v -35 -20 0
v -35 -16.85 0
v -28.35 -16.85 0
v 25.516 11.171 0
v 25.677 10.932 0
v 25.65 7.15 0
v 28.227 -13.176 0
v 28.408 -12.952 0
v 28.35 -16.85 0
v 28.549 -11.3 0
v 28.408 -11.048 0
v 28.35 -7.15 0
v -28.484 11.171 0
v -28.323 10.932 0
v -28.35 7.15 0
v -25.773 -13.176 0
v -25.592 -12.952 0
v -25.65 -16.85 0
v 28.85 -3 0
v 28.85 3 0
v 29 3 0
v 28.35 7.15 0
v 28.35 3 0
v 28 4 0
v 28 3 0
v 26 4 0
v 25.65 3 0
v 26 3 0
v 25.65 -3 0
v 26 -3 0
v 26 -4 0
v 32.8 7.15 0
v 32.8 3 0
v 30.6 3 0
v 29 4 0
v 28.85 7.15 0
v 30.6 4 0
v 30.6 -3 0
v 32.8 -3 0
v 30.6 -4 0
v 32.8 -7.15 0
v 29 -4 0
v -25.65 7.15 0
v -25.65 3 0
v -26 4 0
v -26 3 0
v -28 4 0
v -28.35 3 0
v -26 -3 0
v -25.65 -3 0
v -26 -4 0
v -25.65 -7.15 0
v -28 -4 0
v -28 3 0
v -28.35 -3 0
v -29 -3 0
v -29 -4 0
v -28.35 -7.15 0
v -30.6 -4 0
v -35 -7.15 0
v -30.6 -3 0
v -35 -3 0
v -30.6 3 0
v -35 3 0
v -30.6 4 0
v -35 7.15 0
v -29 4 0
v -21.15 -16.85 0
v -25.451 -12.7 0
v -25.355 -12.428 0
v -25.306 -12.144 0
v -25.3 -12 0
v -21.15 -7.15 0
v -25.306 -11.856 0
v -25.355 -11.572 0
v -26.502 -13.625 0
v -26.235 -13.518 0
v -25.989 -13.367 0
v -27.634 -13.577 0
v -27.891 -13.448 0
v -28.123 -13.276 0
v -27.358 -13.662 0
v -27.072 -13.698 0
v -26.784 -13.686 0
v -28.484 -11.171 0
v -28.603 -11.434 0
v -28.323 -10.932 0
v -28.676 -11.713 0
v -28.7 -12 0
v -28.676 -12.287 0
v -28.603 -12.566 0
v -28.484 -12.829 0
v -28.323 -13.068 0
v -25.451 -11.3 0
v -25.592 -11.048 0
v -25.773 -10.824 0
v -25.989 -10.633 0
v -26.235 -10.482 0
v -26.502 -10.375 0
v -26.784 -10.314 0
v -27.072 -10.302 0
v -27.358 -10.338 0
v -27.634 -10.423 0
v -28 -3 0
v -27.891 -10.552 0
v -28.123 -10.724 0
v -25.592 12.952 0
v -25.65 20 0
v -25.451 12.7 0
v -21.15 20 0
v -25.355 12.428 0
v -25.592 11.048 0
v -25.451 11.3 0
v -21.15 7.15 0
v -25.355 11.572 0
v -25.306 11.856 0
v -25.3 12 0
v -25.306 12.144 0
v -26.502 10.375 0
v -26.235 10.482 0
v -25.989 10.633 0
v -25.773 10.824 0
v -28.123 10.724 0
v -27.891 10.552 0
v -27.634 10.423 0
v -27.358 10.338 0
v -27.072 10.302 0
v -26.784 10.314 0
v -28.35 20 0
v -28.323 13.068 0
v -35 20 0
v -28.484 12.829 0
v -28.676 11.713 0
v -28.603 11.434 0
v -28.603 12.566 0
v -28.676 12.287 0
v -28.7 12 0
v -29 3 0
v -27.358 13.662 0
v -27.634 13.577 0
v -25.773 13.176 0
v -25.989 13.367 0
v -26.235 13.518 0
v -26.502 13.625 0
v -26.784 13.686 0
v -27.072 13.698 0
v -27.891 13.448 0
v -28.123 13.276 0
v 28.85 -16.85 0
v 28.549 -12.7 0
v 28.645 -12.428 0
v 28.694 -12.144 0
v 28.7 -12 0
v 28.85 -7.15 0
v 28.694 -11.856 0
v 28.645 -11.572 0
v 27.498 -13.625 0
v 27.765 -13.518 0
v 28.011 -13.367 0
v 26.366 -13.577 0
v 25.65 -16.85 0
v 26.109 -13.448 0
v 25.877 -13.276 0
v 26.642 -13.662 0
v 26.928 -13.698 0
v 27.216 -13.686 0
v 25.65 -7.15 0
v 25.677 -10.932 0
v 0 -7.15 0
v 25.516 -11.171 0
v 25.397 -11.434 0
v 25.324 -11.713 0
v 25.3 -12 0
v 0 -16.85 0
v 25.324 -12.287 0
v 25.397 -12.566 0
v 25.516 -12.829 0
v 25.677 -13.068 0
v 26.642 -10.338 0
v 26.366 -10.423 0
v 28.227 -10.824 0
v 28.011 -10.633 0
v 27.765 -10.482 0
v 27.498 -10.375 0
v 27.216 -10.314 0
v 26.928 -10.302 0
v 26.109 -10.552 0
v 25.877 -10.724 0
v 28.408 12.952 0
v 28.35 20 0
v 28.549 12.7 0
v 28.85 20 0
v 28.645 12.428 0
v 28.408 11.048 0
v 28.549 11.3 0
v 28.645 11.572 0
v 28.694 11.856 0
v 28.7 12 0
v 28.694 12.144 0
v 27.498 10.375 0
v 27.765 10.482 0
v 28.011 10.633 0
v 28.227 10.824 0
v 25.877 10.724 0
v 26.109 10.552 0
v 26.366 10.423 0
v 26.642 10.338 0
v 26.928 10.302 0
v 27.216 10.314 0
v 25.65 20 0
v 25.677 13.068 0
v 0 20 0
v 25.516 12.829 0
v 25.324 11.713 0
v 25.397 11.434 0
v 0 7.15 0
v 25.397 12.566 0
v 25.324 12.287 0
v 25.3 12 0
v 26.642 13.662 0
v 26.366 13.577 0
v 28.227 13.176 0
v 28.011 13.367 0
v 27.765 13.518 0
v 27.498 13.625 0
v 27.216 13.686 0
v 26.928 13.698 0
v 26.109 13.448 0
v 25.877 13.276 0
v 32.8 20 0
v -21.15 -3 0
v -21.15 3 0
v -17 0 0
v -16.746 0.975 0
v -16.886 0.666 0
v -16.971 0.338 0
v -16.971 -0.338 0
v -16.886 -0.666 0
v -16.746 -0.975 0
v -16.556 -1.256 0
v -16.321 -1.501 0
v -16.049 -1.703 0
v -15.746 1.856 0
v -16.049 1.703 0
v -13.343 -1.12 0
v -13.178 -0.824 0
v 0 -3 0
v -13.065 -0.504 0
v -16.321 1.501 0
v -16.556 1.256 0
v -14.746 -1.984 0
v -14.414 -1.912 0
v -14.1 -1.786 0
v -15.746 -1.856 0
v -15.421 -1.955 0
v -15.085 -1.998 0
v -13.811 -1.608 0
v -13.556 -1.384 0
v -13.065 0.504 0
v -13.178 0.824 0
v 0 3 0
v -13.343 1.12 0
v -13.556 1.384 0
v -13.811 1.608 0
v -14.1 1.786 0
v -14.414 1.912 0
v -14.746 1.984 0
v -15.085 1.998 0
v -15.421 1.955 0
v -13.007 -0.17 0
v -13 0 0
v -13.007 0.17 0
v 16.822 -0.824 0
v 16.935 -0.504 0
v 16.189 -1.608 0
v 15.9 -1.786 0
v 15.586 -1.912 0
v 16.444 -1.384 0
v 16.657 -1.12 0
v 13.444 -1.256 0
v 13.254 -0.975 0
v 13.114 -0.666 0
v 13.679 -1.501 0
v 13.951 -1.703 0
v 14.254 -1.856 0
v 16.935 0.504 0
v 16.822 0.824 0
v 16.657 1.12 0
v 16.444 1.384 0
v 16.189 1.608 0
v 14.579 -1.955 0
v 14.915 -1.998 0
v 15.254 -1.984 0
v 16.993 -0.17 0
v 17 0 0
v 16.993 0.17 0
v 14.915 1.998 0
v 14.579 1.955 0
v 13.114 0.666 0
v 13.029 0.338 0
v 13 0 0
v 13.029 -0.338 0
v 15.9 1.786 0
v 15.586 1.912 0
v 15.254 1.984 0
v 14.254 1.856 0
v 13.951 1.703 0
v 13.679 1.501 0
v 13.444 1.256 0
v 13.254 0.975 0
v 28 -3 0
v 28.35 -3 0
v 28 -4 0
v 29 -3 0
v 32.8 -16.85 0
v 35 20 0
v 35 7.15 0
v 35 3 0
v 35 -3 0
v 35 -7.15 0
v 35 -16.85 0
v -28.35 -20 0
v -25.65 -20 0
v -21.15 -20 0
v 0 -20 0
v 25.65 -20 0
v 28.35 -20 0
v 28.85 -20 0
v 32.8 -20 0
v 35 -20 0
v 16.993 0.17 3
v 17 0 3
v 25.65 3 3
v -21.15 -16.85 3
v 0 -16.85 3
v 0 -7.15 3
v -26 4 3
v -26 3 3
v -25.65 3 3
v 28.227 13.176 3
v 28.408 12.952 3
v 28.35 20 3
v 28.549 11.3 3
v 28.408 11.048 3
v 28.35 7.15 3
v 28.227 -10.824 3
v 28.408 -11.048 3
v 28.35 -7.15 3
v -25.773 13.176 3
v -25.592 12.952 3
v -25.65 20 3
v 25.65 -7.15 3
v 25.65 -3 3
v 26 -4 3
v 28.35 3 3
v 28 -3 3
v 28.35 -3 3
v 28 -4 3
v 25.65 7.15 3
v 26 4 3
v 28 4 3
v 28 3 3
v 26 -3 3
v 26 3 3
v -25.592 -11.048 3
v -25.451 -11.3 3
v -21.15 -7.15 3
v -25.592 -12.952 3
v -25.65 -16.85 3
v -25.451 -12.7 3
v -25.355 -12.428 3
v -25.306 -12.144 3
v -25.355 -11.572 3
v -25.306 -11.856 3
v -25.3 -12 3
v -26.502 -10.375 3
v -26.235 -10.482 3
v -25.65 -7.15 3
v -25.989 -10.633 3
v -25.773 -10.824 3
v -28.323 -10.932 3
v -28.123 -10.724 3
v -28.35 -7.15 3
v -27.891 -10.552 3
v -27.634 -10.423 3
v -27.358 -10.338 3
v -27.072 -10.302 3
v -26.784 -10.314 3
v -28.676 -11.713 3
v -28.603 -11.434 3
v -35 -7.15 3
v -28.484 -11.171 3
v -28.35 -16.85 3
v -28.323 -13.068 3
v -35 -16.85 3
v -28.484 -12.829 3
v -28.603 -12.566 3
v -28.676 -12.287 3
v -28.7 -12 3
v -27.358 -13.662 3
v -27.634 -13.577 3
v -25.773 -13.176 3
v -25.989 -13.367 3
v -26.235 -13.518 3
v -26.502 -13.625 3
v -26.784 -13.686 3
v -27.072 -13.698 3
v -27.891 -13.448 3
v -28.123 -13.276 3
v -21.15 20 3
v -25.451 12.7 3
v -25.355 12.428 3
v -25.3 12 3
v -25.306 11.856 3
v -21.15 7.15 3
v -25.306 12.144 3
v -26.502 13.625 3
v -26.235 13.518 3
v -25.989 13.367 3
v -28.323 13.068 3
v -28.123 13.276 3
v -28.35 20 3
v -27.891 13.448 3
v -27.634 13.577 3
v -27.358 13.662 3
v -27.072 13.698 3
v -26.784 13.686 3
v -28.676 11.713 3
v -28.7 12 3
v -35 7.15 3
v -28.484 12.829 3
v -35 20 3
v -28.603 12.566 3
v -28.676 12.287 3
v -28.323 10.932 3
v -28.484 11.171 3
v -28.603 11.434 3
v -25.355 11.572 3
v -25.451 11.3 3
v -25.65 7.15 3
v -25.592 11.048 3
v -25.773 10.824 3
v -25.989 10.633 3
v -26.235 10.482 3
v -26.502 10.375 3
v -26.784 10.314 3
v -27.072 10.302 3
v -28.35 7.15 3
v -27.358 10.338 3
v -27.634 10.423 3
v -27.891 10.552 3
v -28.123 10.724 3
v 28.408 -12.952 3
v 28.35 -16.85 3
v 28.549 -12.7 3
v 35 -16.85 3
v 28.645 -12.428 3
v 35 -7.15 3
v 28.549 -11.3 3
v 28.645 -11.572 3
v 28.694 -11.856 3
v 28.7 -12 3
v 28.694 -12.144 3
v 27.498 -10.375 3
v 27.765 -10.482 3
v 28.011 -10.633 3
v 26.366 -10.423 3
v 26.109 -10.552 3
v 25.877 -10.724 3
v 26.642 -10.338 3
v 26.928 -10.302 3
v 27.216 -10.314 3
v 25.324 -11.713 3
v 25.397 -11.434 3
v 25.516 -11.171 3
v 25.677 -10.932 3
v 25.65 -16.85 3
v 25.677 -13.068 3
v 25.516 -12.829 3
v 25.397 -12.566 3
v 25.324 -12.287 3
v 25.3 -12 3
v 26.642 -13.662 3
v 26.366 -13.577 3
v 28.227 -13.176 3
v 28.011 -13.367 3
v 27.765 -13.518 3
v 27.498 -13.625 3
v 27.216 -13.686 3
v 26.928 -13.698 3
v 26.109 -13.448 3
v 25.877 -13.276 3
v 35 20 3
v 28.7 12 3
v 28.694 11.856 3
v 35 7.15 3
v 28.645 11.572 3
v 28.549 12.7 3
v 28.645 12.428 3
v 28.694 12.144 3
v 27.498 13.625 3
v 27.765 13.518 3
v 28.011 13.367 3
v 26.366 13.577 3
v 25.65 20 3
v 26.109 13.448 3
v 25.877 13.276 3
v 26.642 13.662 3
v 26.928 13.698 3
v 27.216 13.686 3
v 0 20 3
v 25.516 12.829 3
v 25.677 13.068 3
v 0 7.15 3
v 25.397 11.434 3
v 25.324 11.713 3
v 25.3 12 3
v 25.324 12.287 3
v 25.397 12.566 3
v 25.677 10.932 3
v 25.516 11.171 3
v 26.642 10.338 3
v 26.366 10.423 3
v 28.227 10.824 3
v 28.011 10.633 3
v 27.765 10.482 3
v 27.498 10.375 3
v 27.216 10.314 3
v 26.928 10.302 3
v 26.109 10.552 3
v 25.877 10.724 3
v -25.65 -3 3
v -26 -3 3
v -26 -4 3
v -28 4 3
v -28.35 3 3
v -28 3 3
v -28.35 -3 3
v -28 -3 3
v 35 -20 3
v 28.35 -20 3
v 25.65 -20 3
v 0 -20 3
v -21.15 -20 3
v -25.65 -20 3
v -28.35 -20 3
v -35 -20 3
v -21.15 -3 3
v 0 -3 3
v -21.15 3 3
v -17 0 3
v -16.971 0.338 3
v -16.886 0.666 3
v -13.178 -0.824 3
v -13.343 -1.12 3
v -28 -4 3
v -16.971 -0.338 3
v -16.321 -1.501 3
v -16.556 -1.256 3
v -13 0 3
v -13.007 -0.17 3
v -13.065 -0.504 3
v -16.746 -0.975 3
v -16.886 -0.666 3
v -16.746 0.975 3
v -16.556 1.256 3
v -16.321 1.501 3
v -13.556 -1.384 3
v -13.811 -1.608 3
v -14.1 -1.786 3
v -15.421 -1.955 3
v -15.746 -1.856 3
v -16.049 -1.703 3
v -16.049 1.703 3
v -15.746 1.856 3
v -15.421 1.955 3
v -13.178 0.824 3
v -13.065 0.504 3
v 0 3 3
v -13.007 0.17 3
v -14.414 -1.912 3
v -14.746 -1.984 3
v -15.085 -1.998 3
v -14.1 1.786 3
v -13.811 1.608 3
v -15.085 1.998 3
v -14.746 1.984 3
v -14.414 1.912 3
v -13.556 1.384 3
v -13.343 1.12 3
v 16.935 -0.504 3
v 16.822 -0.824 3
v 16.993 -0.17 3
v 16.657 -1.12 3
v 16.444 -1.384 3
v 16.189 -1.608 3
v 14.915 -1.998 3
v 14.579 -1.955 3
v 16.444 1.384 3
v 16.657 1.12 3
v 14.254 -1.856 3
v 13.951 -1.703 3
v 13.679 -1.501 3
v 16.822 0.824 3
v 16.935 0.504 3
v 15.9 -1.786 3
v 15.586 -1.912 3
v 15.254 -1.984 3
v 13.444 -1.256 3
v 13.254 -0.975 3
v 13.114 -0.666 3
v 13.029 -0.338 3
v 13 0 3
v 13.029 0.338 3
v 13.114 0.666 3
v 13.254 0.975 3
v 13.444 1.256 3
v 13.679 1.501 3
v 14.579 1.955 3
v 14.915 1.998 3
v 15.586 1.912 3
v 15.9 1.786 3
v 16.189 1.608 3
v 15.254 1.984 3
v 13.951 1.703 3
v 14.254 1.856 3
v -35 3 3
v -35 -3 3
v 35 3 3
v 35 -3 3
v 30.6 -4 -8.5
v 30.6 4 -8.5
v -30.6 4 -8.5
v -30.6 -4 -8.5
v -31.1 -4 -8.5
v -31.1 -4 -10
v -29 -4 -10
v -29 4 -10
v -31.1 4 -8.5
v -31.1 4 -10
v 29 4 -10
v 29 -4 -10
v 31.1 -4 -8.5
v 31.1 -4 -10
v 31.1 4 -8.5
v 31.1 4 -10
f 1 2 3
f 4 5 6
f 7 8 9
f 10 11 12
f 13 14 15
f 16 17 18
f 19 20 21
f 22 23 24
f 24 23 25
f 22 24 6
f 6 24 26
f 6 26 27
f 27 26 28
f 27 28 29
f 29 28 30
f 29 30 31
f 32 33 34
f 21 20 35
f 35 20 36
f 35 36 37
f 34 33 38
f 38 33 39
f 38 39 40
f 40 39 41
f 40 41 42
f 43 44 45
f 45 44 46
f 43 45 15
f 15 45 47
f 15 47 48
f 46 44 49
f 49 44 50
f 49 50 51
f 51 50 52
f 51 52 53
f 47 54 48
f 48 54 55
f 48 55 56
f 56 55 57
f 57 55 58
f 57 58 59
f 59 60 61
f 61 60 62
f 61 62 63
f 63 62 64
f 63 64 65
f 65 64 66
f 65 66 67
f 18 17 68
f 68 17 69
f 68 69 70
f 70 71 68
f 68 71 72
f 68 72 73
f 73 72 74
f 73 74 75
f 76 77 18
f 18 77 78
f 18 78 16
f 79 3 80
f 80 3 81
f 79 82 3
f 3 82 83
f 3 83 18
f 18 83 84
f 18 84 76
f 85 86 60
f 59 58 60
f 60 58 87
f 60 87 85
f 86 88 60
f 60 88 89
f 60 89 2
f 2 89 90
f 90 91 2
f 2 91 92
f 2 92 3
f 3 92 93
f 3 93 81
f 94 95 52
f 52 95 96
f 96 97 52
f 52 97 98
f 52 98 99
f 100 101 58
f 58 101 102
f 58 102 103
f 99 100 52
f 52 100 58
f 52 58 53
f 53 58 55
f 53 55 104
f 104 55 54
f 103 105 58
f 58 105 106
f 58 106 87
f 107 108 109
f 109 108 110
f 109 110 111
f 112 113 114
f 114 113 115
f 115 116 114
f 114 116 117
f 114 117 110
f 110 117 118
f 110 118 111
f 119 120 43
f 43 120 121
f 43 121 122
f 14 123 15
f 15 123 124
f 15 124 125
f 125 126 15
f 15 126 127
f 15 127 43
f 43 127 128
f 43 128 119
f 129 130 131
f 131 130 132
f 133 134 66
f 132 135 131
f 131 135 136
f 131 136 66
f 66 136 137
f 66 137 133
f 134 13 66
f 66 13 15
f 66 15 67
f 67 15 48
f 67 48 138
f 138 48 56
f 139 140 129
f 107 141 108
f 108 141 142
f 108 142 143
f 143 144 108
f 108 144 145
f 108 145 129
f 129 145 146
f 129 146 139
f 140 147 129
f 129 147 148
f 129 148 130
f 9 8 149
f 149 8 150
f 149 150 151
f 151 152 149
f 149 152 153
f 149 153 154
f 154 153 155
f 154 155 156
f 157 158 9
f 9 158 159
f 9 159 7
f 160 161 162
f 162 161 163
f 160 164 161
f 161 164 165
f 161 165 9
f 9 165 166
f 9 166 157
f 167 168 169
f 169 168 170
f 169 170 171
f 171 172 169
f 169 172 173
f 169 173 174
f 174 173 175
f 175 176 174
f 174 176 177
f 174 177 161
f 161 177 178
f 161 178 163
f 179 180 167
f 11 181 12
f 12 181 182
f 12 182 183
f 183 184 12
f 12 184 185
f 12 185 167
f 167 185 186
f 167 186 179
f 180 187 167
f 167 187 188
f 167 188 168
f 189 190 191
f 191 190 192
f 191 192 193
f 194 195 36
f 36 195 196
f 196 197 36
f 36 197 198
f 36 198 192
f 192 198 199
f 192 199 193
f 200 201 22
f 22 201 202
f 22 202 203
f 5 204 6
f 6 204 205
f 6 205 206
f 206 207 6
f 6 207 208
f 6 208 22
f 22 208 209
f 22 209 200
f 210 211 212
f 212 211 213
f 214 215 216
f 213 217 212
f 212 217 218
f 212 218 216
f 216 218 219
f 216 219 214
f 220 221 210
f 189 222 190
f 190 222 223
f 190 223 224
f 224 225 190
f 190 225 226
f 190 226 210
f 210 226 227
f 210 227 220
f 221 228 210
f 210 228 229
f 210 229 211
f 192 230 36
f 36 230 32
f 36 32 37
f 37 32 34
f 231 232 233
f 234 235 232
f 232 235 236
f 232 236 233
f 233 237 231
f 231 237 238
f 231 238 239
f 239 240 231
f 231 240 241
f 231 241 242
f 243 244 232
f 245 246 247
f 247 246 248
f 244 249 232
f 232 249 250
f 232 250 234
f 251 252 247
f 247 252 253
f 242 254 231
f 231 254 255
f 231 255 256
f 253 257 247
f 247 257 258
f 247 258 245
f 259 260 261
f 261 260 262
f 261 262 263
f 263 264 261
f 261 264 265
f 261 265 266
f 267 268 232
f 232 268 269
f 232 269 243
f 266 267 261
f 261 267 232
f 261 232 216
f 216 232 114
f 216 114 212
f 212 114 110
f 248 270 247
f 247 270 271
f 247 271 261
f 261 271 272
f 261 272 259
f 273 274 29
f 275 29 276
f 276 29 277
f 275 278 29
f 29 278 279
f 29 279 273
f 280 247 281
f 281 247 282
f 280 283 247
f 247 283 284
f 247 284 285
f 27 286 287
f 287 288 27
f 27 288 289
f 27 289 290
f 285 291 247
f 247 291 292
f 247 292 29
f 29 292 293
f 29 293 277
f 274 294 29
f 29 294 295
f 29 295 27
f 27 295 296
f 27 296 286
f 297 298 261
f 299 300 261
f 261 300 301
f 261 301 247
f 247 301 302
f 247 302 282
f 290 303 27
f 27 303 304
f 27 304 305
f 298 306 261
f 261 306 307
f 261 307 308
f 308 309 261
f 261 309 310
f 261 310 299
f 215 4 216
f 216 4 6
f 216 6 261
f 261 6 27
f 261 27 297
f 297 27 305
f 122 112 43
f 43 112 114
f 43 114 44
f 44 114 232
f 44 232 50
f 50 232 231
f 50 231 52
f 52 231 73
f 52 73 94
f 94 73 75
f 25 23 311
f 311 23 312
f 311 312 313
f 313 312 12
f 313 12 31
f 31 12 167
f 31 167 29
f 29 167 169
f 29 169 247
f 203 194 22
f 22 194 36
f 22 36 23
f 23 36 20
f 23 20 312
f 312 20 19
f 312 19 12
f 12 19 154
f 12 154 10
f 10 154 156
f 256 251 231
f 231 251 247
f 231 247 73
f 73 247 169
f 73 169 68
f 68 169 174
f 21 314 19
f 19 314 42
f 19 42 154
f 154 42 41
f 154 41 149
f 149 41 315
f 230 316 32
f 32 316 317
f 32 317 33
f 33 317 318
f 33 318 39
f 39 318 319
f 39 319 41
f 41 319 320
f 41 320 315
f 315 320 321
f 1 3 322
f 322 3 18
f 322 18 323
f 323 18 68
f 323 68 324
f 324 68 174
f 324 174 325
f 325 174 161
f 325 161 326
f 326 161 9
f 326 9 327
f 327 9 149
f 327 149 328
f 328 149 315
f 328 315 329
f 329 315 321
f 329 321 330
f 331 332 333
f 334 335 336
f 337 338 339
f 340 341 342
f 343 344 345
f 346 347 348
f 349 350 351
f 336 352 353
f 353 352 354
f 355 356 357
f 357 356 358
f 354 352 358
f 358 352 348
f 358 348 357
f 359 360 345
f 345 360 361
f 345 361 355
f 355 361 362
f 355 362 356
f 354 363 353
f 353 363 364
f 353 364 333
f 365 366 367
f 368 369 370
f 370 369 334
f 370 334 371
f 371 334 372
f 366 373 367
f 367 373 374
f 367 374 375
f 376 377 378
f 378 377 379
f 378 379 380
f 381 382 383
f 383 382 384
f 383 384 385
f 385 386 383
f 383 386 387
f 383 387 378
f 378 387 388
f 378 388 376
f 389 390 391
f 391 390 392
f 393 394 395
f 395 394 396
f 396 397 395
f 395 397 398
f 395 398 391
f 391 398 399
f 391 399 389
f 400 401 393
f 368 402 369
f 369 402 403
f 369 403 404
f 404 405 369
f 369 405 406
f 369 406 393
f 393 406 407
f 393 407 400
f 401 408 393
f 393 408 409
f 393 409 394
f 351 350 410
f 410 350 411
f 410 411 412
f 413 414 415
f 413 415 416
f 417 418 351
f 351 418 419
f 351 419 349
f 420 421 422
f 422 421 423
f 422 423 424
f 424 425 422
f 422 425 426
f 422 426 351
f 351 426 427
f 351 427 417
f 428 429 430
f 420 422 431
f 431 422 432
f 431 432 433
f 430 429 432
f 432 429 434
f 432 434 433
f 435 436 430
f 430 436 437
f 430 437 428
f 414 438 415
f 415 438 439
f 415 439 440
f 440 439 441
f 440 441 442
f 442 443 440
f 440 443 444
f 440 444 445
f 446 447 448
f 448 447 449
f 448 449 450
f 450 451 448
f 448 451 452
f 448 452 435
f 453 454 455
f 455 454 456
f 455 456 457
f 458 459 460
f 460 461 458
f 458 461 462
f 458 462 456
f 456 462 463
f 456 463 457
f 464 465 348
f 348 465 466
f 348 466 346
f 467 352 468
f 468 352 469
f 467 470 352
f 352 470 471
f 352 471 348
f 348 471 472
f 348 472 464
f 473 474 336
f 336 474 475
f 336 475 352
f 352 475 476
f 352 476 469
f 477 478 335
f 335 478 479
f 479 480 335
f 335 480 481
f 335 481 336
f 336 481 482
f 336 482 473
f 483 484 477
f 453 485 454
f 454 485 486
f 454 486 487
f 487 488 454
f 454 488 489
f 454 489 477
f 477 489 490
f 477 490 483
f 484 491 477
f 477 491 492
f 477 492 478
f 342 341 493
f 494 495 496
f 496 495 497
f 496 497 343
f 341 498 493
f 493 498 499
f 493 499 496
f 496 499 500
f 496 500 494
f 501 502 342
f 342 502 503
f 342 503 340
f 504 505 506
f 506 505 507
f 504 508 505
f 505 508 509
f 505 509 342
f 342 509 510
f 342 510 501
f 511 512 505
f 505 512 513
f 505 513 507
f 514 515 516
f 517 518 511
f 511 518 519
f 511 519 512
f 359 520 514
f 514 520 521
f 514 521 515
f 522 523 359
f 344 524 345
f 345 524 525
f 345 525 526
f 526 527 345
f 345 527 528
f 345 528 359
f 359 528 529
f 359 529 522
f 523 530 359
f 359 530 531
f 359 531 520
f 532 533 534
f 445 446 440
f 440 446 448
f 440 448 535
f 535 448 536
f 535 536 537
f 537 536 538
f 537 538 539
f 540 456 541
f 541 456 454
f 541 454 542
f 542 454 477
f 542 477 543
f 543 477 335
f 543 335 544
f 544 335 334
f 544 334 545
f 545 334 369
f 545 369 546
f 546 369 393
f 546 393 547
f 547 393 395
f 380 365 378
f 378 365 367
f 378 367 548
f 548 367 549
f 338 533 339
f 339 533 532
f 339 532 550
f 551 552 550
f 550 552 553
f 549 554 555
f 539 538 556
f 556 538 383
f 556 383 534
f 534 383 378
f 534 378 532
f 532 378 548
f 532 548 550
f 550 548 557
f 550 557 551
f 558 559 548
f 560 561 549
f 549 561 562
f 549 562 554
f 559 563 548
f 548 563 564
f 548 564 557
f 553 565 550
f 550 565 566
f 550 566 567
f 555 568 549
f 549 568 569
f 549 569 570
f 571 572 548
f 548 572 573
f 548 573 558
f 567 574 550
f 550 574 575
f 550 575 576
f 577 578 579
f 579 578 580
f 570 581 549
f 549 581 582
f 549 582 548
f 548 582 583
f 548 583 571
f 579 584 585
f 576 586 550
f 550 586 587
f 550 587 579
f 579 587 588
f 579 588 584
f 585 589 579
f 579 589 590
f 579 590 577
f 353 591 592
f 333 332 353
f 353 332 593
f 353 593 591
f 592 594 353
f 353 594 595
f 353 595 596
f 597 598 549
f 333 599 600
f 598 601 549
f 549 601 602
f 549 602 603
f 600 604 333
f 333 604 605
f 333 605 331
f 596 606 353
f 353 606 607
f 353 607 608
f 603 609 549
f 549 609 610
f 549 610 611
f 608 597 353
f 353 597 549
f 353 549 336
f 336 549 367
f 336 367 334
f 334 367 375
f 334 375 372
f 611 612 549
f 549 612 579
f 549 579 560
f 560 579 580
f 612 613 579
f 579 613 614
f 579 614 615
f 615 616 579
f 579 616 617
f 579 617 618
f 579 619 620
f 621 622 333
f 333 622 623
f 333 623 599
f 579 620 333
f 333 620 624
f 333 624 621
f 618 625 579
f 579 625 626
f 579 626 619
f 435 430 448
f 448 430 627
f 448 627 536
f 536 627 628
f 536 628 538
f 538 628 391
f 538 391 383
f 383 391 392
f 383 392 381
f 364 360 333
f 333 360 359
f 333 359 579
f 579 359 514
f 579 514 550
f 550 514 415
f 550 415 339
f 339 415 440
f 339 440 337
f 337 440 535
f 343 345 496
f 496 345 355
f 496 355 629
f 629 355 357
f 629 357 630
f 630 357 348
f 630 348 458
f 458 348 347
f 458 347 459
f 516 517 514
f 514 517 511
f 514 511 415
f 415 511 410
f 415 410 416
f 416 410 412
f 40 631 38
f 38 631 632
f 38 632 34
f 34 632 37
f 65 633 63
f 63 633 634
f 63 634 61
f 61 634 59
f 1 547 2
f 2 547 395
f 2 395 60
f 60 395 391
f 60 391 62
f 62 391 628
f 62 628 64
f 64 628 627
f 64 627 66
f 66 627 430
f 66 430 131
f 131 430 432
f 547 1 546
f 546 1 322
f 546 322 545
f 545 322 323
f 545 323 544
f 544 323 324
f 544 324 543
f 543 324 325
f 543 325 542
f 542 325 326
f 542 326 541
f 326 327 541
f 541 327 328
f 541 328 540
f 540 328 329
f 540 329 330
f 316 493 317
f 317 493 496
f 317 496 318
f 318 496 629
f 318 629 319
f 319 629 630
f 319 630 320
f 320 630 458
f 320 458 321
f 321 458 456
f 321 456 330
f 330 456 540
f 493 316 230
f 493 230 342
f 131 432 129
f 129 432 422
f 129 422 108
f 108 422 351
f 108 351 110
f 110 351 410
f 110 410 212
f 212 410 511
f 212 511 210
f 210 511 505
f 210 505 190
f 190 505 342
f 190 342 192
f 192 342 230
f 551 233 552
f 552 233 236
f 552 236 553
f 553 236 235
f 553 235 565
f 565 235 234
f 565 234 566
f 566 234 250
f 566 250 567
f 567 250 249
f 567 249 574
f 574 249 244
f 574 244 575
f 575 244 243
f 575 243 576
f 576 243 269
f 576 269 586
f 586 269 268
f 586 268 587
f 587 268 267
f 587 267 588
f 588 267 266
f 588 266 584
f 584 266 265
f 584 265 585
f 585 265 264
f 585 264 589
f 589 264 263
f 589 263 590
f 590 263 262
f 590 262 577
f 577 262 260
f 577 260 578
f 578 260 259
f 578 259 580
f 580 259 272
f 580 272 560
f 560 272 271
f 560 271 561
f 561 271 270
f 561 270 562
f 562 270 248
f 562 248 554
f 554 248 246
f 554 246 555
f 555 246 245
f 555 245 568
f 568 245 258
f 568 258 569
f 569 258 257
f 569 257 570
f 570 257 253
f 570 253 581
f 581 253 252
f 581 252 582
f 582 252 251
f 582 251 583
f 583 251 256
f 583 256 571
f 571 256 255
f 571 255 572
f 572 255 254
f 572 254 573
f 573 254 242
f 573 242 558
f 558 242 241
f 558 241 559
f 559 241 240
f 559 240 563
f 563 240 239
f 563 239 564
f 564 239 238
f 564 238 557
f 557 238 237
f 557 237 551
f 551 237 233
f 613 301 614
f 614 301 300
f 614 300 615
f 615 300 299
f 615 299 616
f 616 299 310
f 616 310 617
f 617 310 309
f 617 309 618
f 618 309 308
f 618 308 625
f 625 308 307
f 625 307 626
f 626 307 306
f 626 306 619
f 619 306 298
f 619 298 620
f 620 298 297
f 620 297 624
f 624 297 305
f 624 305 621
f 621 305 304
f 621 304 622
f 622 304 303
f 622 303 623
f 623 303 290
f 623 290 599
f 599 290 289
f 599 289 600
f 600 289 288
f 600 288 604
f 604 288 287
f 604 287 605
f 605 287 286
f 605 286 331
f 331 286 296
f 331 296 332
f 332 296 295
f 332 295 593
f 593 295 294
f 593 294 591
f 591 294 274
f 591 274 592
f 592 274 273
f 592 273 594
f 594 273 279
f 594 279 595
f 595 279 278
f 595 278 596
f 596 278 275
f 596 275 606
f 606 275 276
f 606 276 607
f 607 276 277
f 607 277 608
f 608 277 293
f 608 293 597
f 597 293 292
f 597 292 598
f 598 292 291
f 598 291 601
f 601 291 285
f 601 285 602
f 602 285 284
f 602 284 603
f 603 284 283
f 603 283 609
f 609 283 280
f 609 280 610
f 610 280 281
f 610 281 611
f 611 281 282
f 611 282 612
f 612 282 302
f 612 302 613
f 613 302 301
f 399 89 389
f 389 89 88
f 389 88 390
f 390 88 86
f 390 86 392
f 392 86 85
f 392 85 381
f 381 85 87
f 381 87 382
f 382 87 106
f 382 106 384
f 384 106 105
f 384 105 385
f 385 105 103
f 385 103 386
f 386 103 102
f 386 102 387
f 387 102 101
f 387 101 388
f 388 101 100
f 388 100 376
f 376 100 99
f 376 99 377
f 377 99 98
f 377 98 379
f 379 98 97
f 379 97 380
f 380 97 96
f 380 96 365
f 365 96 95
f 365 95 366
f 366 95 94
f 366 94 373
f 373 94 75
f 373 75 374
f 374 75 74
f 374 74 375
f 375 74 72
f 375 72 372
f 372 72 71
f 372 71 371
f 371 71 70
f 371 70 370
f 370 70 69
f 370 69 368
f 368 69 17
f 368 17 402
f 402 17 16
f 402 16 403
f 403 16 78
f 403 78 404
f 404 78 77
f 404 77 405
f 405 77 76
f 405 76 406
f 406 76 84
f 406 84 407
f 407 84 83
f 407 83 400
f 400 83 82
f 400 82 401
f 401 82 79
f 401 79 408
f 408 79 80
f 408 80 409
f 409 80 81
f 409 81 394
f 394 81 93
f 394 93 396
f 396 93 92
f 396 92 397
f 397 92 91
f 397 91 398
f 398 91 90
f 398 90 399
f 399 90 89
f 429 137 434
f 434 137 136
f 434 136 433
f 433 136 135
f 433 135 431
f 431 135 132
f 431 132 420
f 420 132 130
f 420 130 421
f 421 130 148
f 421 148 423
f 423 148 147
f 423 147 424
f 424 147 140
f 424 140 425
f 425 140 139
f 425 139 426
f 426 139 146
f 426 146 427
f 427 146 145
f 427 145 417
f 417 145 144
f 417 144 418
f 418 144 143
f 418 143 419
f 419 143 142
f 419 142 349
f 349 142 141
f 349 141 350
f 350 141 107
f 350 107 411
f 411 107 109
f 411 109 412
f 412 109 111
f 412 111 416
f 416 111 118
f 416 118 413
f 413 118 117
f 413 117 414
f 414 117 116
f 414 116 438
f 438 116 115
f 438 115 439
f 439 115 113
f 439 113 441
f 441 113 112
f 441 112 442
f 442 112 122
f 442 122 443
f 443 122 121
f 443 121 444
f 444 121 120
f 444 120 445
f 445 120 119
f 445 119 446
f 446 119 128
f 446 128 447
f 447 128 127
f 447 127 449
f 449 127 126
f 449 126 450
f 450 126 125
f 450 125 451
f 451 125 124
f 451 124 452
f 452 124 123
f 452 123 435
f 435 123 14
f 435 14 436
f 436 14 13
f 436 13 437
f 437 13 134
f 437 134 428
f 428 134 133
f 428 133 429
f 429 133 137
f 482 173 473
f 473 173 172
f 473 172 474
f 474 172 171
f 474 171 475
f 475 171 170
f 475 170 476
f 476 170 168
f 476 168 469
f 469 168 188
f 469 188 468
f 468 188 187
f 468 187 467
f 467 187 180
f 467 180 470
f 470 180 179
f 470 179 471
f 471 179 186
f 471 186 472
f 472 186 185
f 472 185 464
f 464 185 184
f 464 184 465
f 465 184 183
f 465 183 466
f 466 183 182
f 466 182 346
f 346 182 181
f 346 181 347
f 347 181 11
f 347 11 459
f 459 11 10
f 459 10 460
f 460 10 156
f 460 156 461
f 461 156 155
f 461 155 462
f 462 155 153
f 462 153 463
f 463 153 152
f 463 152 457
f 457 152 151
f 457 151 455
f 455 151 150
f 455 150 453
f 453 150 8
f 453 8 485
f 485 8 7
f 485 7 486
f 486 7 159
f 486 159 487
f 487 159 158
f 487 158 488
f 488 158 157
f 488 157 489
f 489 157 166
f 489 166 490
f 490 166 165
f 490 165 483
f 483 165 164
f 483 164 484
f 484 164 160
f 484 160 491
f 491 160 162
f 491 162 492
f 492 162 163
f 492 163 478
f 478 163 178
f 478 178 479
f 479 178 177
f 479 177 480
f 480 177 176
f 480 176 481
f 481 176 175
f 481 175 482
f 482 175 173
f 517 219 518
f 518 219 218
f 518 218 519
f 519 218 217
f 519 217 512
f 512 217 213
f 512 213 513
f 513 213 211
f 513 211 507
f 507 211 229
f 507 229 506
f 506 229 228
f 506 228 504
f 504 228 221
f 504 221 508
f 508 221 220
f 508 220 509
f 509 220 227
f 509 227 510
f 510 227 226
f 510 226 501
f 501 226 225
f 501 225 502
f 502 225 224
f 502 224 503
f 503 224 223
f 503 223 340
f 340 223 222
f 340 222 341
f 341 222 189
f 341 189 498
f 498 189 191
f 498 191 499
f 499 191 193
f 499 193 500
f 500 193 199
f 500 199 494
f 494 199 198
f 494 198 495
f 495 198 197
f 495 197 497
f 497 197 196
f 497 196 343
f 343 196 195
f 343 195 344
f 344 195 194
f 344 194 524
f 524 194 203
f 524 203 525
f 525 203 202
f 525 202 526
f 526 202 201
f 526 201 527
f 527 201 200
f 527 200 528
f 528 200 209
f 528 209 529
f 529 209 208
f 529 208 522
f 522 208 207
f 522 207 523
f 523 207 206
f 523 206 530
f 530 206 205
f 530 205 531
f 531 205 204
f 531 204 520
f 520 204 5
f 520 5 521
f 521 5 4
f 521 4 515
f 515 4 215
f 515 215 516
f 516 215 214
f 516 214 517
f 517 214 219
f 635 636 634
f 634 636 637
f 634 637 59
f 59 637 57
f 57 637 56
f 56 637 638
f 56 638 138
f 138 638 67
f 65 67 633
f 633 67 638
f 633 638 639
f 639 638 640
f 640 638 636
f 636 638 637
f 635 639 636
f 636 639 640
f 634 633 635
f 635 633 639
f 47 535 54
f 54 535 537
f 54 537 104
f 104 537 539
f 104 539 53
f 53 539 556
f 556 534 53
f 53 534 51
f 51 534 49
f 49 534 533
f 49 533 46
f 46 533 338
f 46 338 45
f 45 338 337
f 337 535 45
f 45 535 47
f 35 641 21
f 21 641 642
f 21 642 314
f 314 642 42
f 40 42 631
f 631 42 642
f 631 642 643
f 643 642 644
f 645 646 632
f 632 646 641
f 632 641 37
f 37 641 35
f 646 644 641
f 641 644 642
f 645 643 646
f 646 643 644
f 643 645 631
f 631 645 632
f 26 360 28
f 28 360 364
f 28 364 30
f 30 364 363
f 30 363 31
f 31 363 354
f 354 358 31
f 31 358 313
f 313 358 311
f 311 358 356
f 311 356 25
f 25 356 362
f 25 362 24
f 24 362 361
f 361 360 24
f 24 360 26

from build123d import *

# Parameters (mm, degrees)
SKETCH2_W                 = 70
SKETCH2_H                 = 40
LID_PLATE_DEPTH           = 3
SKETCH3_R                 = 2
PORT_BORE_DEPTH           = 3
SKETCH4_R                 = 2
CUT_EXTRUDE2_DEPTH        = 3
SKETCH5_R                 = 1.7
SCREW_CLEARANCE_DEPTH     = 3
SKETCH6_R                 = 1.7
CUT_EXTRUDE4_DEPTH        = 3
SKETCH7_R                 = 1.7
CUT_EXTRUDE5_DEPTH        = 3
SKETCH8_R                 = 1.7
CUT_EXTRUDE6_DEPTH        = 3
SNAP_BEAM_START           = -10
SKETCH9_W                 = 1.6
SKETCH9_H                 = 8
SNAP_BEAM_DEPTH           = 10
SNAP_HOOK_START           = -10
SKETCH10_W                = 0.5
SKETCH10_H                = 8
SNAP_HOOK_DEPTH           = 1.5
SKETCH11_W                = 2
SKETCH11_H                = 8
SNAP_RELEASE_ACCESS_DEPTH = 3
BOSS_EXTRUDE4_START       = -10
SKETCH12_W                = 1.6
SKETCH12_H                = 8
BOSS_EXTRUDE4_DEPTH       = 10
BOSS_EXTRUDE5_START       = -10
SKETCH13_W                = 0.5
SKETCH13_H                = 8
BOSS_EXTRUDE5_DEPTH       = 1.5
SKETCH14_W                = 2
SKETCH14_H                = 8
CUT_EXTRUDE8_DEPTH        = 3


with BuildPart() as part:
    # Sketch2 → Lid_plate (new body)
    with BuildSketch(Plane.XY):
        Rectangle(SKETCH2_W, SKETCH2_H)
    extrude(amount=LID_PLATE_DEPTH)

    # Sketch3 → Port_bore (cut)
    with BuildSketch(Plane.XY):
        with Locations((-15, 0)):
            Circle(SKETCH3_R)
    extrude(amount=PORT_BORE_DEPTH, mode=Mode.SUBTRACT)

    # Sketch4 → Cut-Extrude2 (cut)
    with BuildSketch(Plane.XY):
        with Locations((15, 0)):
            Circle(SKETCH4_R)
    extrude(amount=CUT_EXTRUDE2_DEPTH, mode=Mode.SUBTRACT)

    # Sketch5 → Screw_clearance (cut)
    with BuildSketch(Plane.XY):
        with Locations((-27, -12)):
            Circle(SKETCH5_R)
    extrude(amount=SCREW_CLEARANCE_DEPTH, mode=Mode.SUBTRACT)

    # Sketch6 → Cut-Extrude4 (cut)
    with BuildSketch(Plane.XY):
        with Locations((-27, 12)):
            Circle(SKETCH6_R)
    extrude(amount=CUT_EXTRUDE4_DEPTH, mode=Mode.SUBTRACT)

    # Sketch7 → Cut-Extrude5 (cut)
    with BuildSketch(Plane.XY):
        with Locations((27, -12)):
            Circle(SKETCH7_R)
    extrude(amount=CUT_EXTRUDE5_DEPTH, mode=Mode.SUBTRACT)

    # Sketch8 → Cut-Extrude6 (cut)
    with BuildSketch(Plane.XY):
        with Locations((27, 12)):
            Circle(SKETCH8_R)
    extrude(amount=CUT_EXTRUDE6_DEPTH, mode=Mode.SUBTRACT)

    # Sketch9 → Snap_beam (add)
    with BuildSketch(Plane.XY.offset(SNAP_BEAM_START)):
        with Locations((-29.8, 0)):
            Rectangle(SKETCH9_W, SKETCH9_H)
    extrude(amount=SNAP_BEAM_DEPTH)

    # Sketch10 → Snap_hook (add)
    with BuildSketch(Plane.XY.offset(SNAP_HOOK_START)):
        with Locations((-30.85, 0)):
            Rectangle(SKETCH10_W, SKETCH10_H)
    extrude(amount=SNAP_HOOK_DEPTH)

    # Sketch11 → Snap_release_access (cut)
    with BuildSketch(Plane.XY):
        with Locations((-27, 0)):
            Rectangle(SKETCH11_W, SKETCH11_H)
    extrude(amount=SNAP_RELEASE_ACCESS_DEPTH, mode=Mode.SUBTRACT)

    # Sketch12 → Boss-Extrude4 (add)
    with BuildSketch(Plane.XY.offset(BOSS_EXTRUDE4_START)):
        with Locations((29.8, 0)):
            Rectangle(SKETCH12_W, SKETCH12_H)
    extrude(amount=BOSS_EXTRUDE4_DEPTH)

    # Sketch13 → Boss-Extrude5 (add)
    with BuildSketch(Plane.XY.offset(BOSS_EXTRUDE5_START)):
        with Locations((30.85, 0)):
            Rectangle(SKETCH13_W, SKETCH13_H)
    extrude(amount=BOSS_EXTRUDE5_DEPTH)

    # Sketch14 → Cut-Extrude8 (cut)
    with BuildSketch(Plane.XY):
        with Locations((27, 0)):
            Rectangle(SKETCH14_W, SKETCH14_H)
    extrude(amount=CUT_EXTRUDE8_DEPTH, mode=Mode.SUBTRACT)


solid = part.part
